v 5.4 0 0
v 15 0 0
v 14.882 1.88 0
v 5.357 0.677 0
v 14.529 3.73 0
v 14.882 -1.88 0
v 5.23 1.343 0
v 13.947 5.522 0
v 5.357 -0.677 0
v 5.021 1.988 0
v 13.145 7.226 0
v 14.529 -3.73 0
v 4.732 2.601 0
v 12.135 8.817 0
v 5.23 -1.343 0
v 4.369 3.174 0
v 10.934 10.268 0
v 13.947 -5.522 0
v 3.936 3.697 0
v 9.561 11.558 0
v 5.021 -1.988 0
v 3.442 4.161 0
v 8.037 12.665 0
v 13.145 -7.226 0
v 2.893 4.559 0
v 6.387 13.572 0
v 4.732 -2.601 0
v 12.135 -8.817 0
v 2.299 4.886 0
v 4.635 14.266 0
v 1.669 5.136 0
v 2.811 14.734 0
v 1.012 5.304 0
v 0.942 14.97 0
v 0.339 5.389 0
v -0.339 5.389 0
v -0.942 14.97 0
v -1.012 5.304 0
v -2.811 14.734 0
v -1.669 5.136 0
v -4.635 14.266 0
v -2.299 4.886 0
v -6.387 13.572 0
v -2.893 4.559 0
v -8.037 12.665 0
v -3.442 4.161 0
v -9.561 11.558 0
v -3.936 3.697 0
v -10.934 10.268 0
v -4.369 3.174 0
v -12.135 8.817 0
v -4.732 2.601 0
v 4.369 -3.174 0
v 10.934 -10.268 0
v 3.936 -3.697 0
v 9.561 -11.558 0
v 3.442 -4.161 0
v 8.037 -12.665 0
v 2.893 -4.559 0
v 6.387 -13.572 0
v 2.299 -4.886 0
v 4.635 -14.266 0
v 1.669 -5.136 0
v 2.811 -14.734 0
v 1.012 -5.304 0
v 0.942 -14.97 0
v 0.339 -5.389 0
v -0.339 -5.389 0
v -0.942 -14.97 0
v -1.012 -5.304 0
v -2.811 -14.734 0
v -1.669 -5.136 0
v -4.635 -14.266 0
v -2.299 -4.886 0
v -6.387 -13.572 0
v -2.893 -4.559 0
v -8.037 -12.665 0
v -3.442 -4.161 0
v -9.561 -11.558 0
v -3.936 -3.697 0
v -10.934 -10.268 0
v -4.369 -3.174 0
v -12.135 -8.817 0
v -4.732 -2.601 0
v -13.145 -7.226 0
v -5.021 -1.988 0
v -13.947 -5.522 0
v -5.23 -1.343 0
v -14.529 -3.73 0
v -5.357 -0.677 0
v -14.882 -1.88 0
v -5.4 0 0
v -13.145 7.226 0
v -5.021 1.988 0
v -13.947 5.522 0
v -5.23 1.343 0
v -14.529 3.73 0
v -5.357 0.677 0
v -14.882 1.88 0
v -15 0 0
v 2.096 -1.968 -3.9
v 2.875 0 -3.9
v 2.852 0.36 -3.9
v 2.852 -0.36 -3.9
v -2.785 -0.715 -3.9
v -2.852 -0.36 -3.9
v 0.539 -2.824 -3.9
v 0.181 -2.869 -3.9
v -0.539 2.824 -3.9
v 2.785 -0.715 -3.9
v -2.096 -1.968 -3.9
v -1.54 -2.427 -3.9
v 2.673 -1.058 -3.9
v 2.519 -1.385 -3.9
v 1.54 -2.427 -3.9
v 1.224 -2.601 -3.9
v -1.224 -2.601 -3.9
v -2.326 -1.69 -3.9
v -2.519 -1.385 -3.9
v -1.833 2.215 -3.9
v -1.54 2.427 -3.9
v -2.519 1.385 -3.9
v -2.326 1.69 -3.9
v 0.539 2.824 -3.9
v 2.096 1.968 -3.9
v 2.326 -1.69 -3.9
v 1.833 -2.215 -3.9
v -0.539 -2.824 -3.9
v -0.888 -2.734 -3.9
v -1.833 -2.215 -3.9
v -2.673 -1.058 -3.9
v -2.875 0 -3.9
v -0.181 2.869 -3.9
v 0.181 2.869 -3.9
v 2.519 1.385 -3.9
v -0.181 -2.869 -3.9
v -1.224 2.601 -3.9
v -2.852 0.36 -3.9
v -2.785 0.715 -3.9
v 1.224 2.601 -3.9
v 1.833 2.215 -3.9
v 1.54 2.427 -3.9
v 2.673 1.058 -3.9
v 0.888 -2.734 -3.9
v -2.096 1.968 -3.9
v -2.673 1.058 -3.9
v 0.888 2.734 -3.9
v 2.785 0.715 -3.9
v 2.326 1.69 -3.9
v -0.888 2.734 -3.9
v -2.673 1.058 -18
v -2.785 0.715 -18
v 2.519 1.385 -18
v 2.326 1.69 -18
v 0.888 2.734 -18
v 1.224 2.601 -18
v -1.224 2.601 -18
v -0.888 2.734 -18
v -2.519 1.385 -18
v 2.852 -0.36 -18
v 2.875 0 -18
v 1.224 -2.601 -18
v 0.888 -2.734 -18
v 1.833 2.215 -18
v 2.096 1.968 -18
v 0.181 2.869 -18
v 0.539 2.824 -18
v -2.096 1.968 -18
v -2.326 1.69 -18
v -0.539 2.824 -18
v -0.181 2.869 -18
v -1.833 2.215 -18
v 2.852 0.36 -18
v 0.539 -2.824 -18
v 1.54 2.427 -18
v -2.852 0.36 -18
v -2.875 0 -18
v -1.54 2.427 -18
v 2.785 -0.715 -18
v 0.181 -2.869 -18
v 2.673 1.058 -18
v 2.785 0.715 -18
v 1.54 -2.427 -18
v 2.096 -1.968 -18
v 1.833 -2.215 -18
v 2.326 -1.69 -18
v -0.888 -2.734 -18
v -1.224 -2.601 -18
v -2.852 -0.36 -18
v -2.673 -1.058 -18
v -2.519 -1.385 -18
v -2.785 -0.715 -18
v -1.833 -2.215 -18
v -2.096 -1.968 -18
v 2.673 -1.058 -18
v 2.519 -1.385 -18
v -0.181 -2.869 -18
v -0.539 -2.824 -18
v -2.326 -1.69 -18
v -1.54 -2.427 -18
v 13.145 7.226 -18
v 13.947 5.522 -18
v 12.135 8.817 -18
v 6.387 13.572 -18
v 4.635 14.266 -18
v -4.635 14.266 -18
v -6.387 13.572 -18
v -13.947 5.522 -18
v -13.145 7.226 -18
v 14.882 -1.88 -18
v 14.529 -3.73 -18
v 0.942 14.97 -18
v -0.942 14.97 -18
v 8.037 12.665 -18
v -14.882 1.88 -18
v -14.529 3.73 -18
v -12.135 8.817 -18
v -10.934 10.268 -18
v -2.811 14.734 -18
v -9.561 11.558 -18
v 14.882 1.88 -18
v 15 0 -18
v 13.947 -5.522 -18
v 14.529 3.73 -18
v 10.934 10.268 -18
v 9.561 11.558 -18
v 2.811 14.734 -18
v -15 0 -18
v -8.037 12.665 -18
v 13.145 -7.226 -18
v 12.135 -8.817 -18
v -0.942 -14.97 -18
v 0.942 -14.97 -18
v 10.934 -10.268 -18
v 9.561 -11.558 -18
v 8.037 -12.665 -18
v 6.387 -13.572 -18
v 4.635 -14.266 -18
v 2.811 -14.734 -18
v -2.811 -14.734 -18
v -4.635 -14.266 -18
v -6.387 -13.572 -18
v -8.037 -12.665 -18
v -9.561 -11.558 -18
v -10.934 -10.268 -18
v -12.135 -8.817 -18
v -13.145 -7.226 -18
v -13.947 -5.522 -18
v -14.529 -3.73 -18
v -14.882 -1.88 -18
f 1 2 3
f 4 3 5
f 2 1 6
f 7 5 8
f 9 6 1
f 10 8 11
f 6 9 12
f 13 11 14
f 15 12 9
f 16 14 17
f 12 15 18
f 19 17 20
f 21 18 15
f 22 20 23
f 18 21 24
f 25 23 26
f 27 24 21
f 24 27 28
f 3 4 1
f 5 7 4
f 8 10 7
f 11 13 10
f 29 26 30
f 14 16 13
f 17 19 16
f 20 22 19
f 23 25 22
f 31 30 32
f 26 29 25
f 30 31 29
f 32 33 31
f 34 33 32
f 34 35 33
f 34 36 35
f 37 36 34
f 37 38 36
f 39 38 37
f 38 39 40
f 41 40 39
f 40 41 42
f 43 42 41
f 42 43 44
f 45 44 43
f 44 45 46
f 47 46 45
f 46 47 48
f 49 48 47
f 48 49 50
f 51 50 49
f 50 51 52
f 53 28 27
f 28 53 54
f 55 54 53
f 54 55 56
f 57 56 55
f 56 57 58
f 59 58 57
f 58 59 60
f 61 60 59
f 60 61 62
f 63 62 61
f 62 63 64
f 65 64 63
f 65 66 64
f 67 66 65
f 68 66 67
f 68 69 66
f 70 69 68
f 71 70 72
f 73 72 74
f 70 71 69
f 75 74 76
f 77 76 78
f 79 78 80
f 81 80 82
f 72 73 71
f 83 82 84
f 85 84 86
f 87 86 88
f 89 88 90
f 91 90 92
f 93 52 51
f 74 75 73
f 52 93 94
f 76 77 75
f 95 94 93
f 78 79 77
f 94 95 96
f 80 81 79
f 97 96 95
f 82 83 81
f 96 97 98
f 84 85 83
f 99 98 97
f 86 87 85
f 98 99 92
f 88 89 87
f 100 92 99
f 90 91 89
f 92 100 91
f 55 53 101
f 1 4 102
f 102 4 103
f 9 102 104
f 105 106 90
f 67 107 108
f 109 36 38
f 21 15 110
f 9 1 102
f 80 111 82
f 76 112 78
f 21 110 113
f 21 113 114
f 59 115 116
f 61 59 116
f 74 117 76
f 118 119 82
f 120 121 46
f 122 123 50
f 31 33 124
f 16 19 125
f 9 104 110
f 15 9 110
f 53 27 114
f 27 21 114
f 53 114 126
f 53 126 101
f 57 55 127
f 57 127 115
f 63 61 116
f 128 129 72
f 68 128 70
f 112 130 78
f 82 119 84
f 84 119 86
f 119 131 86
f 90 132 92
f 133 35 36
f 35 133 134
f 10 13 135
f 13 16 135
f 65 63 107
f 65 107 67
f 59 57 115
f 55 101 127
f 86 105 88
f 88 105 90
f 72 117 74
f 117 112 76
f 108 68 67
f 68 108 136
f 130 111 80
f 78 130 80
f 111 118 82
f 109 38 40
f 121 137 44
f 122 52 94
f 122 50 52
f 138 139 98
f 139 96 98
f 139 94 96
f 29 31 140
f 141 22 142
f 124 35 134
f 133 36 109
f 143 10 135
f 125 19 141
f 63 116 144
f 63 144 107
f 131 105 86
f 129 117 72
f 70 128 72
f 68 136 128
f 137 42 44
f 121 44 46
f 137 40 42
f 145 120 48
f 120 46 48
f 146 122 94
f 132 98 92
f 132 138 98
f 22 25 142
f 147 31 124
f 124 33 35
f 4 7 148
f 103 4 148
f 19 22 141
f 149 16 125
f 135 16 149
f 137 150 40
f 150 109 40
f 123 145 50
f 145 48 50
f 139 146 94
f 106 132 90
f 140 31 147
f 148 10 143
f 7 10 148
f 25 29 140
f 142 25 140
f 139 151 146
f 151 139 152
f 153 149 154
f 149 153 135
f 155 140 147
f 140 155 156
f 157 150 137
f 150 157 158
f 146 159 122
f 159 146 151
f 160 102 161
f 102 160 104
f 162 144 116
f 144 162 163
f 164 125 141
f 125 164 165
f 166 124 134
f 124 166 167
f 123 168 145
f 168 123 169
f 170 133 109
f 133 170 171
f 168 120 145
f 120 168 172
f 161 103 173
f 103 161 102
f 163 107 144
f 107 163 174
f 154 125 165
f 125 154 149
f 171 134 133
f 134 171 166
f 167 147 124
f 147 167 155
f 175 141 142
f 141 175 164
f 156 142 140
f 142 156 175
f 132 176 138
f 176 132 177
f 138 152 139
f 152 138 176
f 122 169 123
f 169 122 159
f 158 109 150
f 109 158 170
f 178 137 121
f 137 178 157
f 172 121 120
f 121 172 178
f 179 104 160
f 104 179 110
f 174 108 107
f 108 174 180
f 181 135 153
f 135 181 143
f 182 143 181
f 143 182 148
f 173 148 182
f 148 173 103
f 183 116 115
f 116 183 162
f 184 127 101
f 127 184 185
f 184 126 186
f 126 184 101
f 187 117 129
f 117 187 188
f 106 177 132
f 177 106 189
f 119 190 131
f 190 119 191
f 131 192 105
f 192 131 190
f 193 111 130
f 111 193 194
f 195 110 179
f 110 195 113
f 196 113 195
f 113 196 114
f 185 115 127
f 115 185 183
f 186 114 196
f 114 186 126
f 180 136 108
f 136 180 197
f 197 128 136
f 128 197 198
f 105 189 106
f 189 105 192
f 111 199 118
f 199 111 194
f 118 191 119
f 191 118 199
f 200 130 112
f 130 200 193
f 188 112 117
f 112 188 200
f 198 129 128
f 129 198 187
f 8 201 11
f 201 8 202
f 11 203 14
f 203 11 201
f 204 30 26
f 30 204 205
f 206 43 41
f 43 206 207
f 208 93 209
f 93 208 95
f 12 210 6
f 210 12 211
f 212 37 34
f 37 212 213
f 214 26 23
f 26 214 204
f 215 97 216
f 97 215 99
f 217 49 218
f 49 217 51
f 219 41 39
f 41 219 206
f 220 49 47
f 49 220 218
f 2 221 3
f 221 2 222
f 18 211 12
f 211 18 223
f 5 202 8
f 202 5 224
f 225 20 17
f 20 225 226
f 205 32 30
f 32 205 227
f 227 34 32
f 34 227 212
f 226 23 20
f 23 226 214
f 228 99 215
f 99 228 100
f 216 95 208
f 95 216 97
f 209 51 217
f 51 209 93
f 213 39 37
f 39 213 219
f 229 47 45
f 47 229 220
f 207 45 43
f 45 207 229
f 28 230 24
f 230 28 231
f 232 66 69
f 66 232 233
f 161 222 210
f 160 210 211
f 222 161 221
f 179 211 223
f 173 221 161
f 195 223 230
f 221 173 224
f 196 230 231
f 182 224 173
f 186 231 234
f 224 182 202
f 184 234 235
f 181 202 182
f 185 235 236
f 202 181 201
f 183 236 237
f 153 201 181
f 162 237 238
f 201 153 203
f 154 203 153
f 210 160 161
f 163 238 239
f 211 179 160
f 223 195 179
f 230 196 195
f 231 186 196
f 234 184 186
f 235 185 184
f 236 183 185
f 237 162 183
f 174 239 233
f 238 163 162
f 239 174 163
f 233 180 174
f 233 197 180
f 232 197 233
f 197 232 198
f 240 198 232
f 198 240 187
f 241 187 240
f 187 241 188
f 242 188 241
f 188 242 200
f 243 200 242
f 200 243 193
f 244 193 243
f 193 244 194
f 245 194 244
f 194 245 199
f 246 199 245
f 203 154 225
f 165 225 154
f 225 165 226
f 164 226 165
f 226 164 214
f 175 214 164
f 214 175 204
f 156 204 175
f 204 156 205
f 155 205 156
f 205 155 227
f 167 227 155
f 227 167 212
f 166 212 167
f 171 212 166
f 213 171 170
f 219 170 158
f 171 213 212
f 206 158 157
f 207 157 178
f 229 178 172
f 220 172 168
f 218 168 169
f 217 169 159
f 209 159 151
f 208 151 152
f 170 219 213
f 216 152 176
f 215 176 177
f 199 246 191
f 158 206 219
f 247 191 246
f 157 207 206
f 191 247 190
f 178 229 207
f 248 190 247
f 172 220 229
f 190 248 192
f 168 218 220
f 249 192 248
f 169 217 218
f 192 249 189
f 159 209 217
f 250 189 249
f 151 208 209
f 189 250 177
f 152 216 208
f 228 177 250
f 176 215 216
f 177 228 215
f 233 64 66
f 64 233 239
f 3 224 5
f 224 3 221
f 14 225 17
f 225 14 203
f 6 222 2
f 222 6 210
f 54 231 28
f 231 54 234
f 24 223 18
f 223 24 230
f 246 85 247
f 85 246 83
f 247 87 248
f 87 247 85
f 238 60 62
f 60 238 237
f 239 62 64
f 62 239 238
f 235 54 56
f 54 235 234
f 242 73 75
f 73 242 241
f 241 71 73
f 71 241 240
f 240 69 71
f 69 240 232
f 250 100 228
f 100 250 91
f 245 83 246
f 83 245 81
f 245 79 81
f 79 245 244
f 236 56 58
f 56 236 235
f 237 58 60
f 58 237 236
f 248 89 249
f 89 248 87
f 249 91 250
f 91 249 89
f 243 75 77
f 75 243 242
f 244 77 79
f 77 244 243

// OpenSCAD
$fn = 50;


difference() {
	union() {
		translate(v = [0, 0, -18.0000000000]) {
			cylinder(h = 18, r = 15.0000000000);
		}
		#translate(v = [0, 0, -21.0000000000]) {
			cylinder(h = 21, r = 2.8750000000);
		}
	}
	union() {
		translate(v = [0, 0, 0]) {
			rotate(a = [0, 0, 0]) {
				difference() {
					union() {
						translate(v = [0, 0, -21.0000000000]) {
							cylinder(h = 21, r = 2.6000000000);
						}
						translate(v = [0, 0, -3.9000000000]) {
							cylinder(h = 3.9000000000, r1 = 2.8750000000, r2 = 5.4000000000);
						}
						translate(v = [0, 0, -21.0000000000]) {
							cylinder(h = 21, r = 2.8750000000);
						}
						translate(v = [0, 0, -21.0000000000]) {
							cylinder(h = 21, r = 2.6000000000);
						}
					}
					union();
				}
			}
		}
	}
}
